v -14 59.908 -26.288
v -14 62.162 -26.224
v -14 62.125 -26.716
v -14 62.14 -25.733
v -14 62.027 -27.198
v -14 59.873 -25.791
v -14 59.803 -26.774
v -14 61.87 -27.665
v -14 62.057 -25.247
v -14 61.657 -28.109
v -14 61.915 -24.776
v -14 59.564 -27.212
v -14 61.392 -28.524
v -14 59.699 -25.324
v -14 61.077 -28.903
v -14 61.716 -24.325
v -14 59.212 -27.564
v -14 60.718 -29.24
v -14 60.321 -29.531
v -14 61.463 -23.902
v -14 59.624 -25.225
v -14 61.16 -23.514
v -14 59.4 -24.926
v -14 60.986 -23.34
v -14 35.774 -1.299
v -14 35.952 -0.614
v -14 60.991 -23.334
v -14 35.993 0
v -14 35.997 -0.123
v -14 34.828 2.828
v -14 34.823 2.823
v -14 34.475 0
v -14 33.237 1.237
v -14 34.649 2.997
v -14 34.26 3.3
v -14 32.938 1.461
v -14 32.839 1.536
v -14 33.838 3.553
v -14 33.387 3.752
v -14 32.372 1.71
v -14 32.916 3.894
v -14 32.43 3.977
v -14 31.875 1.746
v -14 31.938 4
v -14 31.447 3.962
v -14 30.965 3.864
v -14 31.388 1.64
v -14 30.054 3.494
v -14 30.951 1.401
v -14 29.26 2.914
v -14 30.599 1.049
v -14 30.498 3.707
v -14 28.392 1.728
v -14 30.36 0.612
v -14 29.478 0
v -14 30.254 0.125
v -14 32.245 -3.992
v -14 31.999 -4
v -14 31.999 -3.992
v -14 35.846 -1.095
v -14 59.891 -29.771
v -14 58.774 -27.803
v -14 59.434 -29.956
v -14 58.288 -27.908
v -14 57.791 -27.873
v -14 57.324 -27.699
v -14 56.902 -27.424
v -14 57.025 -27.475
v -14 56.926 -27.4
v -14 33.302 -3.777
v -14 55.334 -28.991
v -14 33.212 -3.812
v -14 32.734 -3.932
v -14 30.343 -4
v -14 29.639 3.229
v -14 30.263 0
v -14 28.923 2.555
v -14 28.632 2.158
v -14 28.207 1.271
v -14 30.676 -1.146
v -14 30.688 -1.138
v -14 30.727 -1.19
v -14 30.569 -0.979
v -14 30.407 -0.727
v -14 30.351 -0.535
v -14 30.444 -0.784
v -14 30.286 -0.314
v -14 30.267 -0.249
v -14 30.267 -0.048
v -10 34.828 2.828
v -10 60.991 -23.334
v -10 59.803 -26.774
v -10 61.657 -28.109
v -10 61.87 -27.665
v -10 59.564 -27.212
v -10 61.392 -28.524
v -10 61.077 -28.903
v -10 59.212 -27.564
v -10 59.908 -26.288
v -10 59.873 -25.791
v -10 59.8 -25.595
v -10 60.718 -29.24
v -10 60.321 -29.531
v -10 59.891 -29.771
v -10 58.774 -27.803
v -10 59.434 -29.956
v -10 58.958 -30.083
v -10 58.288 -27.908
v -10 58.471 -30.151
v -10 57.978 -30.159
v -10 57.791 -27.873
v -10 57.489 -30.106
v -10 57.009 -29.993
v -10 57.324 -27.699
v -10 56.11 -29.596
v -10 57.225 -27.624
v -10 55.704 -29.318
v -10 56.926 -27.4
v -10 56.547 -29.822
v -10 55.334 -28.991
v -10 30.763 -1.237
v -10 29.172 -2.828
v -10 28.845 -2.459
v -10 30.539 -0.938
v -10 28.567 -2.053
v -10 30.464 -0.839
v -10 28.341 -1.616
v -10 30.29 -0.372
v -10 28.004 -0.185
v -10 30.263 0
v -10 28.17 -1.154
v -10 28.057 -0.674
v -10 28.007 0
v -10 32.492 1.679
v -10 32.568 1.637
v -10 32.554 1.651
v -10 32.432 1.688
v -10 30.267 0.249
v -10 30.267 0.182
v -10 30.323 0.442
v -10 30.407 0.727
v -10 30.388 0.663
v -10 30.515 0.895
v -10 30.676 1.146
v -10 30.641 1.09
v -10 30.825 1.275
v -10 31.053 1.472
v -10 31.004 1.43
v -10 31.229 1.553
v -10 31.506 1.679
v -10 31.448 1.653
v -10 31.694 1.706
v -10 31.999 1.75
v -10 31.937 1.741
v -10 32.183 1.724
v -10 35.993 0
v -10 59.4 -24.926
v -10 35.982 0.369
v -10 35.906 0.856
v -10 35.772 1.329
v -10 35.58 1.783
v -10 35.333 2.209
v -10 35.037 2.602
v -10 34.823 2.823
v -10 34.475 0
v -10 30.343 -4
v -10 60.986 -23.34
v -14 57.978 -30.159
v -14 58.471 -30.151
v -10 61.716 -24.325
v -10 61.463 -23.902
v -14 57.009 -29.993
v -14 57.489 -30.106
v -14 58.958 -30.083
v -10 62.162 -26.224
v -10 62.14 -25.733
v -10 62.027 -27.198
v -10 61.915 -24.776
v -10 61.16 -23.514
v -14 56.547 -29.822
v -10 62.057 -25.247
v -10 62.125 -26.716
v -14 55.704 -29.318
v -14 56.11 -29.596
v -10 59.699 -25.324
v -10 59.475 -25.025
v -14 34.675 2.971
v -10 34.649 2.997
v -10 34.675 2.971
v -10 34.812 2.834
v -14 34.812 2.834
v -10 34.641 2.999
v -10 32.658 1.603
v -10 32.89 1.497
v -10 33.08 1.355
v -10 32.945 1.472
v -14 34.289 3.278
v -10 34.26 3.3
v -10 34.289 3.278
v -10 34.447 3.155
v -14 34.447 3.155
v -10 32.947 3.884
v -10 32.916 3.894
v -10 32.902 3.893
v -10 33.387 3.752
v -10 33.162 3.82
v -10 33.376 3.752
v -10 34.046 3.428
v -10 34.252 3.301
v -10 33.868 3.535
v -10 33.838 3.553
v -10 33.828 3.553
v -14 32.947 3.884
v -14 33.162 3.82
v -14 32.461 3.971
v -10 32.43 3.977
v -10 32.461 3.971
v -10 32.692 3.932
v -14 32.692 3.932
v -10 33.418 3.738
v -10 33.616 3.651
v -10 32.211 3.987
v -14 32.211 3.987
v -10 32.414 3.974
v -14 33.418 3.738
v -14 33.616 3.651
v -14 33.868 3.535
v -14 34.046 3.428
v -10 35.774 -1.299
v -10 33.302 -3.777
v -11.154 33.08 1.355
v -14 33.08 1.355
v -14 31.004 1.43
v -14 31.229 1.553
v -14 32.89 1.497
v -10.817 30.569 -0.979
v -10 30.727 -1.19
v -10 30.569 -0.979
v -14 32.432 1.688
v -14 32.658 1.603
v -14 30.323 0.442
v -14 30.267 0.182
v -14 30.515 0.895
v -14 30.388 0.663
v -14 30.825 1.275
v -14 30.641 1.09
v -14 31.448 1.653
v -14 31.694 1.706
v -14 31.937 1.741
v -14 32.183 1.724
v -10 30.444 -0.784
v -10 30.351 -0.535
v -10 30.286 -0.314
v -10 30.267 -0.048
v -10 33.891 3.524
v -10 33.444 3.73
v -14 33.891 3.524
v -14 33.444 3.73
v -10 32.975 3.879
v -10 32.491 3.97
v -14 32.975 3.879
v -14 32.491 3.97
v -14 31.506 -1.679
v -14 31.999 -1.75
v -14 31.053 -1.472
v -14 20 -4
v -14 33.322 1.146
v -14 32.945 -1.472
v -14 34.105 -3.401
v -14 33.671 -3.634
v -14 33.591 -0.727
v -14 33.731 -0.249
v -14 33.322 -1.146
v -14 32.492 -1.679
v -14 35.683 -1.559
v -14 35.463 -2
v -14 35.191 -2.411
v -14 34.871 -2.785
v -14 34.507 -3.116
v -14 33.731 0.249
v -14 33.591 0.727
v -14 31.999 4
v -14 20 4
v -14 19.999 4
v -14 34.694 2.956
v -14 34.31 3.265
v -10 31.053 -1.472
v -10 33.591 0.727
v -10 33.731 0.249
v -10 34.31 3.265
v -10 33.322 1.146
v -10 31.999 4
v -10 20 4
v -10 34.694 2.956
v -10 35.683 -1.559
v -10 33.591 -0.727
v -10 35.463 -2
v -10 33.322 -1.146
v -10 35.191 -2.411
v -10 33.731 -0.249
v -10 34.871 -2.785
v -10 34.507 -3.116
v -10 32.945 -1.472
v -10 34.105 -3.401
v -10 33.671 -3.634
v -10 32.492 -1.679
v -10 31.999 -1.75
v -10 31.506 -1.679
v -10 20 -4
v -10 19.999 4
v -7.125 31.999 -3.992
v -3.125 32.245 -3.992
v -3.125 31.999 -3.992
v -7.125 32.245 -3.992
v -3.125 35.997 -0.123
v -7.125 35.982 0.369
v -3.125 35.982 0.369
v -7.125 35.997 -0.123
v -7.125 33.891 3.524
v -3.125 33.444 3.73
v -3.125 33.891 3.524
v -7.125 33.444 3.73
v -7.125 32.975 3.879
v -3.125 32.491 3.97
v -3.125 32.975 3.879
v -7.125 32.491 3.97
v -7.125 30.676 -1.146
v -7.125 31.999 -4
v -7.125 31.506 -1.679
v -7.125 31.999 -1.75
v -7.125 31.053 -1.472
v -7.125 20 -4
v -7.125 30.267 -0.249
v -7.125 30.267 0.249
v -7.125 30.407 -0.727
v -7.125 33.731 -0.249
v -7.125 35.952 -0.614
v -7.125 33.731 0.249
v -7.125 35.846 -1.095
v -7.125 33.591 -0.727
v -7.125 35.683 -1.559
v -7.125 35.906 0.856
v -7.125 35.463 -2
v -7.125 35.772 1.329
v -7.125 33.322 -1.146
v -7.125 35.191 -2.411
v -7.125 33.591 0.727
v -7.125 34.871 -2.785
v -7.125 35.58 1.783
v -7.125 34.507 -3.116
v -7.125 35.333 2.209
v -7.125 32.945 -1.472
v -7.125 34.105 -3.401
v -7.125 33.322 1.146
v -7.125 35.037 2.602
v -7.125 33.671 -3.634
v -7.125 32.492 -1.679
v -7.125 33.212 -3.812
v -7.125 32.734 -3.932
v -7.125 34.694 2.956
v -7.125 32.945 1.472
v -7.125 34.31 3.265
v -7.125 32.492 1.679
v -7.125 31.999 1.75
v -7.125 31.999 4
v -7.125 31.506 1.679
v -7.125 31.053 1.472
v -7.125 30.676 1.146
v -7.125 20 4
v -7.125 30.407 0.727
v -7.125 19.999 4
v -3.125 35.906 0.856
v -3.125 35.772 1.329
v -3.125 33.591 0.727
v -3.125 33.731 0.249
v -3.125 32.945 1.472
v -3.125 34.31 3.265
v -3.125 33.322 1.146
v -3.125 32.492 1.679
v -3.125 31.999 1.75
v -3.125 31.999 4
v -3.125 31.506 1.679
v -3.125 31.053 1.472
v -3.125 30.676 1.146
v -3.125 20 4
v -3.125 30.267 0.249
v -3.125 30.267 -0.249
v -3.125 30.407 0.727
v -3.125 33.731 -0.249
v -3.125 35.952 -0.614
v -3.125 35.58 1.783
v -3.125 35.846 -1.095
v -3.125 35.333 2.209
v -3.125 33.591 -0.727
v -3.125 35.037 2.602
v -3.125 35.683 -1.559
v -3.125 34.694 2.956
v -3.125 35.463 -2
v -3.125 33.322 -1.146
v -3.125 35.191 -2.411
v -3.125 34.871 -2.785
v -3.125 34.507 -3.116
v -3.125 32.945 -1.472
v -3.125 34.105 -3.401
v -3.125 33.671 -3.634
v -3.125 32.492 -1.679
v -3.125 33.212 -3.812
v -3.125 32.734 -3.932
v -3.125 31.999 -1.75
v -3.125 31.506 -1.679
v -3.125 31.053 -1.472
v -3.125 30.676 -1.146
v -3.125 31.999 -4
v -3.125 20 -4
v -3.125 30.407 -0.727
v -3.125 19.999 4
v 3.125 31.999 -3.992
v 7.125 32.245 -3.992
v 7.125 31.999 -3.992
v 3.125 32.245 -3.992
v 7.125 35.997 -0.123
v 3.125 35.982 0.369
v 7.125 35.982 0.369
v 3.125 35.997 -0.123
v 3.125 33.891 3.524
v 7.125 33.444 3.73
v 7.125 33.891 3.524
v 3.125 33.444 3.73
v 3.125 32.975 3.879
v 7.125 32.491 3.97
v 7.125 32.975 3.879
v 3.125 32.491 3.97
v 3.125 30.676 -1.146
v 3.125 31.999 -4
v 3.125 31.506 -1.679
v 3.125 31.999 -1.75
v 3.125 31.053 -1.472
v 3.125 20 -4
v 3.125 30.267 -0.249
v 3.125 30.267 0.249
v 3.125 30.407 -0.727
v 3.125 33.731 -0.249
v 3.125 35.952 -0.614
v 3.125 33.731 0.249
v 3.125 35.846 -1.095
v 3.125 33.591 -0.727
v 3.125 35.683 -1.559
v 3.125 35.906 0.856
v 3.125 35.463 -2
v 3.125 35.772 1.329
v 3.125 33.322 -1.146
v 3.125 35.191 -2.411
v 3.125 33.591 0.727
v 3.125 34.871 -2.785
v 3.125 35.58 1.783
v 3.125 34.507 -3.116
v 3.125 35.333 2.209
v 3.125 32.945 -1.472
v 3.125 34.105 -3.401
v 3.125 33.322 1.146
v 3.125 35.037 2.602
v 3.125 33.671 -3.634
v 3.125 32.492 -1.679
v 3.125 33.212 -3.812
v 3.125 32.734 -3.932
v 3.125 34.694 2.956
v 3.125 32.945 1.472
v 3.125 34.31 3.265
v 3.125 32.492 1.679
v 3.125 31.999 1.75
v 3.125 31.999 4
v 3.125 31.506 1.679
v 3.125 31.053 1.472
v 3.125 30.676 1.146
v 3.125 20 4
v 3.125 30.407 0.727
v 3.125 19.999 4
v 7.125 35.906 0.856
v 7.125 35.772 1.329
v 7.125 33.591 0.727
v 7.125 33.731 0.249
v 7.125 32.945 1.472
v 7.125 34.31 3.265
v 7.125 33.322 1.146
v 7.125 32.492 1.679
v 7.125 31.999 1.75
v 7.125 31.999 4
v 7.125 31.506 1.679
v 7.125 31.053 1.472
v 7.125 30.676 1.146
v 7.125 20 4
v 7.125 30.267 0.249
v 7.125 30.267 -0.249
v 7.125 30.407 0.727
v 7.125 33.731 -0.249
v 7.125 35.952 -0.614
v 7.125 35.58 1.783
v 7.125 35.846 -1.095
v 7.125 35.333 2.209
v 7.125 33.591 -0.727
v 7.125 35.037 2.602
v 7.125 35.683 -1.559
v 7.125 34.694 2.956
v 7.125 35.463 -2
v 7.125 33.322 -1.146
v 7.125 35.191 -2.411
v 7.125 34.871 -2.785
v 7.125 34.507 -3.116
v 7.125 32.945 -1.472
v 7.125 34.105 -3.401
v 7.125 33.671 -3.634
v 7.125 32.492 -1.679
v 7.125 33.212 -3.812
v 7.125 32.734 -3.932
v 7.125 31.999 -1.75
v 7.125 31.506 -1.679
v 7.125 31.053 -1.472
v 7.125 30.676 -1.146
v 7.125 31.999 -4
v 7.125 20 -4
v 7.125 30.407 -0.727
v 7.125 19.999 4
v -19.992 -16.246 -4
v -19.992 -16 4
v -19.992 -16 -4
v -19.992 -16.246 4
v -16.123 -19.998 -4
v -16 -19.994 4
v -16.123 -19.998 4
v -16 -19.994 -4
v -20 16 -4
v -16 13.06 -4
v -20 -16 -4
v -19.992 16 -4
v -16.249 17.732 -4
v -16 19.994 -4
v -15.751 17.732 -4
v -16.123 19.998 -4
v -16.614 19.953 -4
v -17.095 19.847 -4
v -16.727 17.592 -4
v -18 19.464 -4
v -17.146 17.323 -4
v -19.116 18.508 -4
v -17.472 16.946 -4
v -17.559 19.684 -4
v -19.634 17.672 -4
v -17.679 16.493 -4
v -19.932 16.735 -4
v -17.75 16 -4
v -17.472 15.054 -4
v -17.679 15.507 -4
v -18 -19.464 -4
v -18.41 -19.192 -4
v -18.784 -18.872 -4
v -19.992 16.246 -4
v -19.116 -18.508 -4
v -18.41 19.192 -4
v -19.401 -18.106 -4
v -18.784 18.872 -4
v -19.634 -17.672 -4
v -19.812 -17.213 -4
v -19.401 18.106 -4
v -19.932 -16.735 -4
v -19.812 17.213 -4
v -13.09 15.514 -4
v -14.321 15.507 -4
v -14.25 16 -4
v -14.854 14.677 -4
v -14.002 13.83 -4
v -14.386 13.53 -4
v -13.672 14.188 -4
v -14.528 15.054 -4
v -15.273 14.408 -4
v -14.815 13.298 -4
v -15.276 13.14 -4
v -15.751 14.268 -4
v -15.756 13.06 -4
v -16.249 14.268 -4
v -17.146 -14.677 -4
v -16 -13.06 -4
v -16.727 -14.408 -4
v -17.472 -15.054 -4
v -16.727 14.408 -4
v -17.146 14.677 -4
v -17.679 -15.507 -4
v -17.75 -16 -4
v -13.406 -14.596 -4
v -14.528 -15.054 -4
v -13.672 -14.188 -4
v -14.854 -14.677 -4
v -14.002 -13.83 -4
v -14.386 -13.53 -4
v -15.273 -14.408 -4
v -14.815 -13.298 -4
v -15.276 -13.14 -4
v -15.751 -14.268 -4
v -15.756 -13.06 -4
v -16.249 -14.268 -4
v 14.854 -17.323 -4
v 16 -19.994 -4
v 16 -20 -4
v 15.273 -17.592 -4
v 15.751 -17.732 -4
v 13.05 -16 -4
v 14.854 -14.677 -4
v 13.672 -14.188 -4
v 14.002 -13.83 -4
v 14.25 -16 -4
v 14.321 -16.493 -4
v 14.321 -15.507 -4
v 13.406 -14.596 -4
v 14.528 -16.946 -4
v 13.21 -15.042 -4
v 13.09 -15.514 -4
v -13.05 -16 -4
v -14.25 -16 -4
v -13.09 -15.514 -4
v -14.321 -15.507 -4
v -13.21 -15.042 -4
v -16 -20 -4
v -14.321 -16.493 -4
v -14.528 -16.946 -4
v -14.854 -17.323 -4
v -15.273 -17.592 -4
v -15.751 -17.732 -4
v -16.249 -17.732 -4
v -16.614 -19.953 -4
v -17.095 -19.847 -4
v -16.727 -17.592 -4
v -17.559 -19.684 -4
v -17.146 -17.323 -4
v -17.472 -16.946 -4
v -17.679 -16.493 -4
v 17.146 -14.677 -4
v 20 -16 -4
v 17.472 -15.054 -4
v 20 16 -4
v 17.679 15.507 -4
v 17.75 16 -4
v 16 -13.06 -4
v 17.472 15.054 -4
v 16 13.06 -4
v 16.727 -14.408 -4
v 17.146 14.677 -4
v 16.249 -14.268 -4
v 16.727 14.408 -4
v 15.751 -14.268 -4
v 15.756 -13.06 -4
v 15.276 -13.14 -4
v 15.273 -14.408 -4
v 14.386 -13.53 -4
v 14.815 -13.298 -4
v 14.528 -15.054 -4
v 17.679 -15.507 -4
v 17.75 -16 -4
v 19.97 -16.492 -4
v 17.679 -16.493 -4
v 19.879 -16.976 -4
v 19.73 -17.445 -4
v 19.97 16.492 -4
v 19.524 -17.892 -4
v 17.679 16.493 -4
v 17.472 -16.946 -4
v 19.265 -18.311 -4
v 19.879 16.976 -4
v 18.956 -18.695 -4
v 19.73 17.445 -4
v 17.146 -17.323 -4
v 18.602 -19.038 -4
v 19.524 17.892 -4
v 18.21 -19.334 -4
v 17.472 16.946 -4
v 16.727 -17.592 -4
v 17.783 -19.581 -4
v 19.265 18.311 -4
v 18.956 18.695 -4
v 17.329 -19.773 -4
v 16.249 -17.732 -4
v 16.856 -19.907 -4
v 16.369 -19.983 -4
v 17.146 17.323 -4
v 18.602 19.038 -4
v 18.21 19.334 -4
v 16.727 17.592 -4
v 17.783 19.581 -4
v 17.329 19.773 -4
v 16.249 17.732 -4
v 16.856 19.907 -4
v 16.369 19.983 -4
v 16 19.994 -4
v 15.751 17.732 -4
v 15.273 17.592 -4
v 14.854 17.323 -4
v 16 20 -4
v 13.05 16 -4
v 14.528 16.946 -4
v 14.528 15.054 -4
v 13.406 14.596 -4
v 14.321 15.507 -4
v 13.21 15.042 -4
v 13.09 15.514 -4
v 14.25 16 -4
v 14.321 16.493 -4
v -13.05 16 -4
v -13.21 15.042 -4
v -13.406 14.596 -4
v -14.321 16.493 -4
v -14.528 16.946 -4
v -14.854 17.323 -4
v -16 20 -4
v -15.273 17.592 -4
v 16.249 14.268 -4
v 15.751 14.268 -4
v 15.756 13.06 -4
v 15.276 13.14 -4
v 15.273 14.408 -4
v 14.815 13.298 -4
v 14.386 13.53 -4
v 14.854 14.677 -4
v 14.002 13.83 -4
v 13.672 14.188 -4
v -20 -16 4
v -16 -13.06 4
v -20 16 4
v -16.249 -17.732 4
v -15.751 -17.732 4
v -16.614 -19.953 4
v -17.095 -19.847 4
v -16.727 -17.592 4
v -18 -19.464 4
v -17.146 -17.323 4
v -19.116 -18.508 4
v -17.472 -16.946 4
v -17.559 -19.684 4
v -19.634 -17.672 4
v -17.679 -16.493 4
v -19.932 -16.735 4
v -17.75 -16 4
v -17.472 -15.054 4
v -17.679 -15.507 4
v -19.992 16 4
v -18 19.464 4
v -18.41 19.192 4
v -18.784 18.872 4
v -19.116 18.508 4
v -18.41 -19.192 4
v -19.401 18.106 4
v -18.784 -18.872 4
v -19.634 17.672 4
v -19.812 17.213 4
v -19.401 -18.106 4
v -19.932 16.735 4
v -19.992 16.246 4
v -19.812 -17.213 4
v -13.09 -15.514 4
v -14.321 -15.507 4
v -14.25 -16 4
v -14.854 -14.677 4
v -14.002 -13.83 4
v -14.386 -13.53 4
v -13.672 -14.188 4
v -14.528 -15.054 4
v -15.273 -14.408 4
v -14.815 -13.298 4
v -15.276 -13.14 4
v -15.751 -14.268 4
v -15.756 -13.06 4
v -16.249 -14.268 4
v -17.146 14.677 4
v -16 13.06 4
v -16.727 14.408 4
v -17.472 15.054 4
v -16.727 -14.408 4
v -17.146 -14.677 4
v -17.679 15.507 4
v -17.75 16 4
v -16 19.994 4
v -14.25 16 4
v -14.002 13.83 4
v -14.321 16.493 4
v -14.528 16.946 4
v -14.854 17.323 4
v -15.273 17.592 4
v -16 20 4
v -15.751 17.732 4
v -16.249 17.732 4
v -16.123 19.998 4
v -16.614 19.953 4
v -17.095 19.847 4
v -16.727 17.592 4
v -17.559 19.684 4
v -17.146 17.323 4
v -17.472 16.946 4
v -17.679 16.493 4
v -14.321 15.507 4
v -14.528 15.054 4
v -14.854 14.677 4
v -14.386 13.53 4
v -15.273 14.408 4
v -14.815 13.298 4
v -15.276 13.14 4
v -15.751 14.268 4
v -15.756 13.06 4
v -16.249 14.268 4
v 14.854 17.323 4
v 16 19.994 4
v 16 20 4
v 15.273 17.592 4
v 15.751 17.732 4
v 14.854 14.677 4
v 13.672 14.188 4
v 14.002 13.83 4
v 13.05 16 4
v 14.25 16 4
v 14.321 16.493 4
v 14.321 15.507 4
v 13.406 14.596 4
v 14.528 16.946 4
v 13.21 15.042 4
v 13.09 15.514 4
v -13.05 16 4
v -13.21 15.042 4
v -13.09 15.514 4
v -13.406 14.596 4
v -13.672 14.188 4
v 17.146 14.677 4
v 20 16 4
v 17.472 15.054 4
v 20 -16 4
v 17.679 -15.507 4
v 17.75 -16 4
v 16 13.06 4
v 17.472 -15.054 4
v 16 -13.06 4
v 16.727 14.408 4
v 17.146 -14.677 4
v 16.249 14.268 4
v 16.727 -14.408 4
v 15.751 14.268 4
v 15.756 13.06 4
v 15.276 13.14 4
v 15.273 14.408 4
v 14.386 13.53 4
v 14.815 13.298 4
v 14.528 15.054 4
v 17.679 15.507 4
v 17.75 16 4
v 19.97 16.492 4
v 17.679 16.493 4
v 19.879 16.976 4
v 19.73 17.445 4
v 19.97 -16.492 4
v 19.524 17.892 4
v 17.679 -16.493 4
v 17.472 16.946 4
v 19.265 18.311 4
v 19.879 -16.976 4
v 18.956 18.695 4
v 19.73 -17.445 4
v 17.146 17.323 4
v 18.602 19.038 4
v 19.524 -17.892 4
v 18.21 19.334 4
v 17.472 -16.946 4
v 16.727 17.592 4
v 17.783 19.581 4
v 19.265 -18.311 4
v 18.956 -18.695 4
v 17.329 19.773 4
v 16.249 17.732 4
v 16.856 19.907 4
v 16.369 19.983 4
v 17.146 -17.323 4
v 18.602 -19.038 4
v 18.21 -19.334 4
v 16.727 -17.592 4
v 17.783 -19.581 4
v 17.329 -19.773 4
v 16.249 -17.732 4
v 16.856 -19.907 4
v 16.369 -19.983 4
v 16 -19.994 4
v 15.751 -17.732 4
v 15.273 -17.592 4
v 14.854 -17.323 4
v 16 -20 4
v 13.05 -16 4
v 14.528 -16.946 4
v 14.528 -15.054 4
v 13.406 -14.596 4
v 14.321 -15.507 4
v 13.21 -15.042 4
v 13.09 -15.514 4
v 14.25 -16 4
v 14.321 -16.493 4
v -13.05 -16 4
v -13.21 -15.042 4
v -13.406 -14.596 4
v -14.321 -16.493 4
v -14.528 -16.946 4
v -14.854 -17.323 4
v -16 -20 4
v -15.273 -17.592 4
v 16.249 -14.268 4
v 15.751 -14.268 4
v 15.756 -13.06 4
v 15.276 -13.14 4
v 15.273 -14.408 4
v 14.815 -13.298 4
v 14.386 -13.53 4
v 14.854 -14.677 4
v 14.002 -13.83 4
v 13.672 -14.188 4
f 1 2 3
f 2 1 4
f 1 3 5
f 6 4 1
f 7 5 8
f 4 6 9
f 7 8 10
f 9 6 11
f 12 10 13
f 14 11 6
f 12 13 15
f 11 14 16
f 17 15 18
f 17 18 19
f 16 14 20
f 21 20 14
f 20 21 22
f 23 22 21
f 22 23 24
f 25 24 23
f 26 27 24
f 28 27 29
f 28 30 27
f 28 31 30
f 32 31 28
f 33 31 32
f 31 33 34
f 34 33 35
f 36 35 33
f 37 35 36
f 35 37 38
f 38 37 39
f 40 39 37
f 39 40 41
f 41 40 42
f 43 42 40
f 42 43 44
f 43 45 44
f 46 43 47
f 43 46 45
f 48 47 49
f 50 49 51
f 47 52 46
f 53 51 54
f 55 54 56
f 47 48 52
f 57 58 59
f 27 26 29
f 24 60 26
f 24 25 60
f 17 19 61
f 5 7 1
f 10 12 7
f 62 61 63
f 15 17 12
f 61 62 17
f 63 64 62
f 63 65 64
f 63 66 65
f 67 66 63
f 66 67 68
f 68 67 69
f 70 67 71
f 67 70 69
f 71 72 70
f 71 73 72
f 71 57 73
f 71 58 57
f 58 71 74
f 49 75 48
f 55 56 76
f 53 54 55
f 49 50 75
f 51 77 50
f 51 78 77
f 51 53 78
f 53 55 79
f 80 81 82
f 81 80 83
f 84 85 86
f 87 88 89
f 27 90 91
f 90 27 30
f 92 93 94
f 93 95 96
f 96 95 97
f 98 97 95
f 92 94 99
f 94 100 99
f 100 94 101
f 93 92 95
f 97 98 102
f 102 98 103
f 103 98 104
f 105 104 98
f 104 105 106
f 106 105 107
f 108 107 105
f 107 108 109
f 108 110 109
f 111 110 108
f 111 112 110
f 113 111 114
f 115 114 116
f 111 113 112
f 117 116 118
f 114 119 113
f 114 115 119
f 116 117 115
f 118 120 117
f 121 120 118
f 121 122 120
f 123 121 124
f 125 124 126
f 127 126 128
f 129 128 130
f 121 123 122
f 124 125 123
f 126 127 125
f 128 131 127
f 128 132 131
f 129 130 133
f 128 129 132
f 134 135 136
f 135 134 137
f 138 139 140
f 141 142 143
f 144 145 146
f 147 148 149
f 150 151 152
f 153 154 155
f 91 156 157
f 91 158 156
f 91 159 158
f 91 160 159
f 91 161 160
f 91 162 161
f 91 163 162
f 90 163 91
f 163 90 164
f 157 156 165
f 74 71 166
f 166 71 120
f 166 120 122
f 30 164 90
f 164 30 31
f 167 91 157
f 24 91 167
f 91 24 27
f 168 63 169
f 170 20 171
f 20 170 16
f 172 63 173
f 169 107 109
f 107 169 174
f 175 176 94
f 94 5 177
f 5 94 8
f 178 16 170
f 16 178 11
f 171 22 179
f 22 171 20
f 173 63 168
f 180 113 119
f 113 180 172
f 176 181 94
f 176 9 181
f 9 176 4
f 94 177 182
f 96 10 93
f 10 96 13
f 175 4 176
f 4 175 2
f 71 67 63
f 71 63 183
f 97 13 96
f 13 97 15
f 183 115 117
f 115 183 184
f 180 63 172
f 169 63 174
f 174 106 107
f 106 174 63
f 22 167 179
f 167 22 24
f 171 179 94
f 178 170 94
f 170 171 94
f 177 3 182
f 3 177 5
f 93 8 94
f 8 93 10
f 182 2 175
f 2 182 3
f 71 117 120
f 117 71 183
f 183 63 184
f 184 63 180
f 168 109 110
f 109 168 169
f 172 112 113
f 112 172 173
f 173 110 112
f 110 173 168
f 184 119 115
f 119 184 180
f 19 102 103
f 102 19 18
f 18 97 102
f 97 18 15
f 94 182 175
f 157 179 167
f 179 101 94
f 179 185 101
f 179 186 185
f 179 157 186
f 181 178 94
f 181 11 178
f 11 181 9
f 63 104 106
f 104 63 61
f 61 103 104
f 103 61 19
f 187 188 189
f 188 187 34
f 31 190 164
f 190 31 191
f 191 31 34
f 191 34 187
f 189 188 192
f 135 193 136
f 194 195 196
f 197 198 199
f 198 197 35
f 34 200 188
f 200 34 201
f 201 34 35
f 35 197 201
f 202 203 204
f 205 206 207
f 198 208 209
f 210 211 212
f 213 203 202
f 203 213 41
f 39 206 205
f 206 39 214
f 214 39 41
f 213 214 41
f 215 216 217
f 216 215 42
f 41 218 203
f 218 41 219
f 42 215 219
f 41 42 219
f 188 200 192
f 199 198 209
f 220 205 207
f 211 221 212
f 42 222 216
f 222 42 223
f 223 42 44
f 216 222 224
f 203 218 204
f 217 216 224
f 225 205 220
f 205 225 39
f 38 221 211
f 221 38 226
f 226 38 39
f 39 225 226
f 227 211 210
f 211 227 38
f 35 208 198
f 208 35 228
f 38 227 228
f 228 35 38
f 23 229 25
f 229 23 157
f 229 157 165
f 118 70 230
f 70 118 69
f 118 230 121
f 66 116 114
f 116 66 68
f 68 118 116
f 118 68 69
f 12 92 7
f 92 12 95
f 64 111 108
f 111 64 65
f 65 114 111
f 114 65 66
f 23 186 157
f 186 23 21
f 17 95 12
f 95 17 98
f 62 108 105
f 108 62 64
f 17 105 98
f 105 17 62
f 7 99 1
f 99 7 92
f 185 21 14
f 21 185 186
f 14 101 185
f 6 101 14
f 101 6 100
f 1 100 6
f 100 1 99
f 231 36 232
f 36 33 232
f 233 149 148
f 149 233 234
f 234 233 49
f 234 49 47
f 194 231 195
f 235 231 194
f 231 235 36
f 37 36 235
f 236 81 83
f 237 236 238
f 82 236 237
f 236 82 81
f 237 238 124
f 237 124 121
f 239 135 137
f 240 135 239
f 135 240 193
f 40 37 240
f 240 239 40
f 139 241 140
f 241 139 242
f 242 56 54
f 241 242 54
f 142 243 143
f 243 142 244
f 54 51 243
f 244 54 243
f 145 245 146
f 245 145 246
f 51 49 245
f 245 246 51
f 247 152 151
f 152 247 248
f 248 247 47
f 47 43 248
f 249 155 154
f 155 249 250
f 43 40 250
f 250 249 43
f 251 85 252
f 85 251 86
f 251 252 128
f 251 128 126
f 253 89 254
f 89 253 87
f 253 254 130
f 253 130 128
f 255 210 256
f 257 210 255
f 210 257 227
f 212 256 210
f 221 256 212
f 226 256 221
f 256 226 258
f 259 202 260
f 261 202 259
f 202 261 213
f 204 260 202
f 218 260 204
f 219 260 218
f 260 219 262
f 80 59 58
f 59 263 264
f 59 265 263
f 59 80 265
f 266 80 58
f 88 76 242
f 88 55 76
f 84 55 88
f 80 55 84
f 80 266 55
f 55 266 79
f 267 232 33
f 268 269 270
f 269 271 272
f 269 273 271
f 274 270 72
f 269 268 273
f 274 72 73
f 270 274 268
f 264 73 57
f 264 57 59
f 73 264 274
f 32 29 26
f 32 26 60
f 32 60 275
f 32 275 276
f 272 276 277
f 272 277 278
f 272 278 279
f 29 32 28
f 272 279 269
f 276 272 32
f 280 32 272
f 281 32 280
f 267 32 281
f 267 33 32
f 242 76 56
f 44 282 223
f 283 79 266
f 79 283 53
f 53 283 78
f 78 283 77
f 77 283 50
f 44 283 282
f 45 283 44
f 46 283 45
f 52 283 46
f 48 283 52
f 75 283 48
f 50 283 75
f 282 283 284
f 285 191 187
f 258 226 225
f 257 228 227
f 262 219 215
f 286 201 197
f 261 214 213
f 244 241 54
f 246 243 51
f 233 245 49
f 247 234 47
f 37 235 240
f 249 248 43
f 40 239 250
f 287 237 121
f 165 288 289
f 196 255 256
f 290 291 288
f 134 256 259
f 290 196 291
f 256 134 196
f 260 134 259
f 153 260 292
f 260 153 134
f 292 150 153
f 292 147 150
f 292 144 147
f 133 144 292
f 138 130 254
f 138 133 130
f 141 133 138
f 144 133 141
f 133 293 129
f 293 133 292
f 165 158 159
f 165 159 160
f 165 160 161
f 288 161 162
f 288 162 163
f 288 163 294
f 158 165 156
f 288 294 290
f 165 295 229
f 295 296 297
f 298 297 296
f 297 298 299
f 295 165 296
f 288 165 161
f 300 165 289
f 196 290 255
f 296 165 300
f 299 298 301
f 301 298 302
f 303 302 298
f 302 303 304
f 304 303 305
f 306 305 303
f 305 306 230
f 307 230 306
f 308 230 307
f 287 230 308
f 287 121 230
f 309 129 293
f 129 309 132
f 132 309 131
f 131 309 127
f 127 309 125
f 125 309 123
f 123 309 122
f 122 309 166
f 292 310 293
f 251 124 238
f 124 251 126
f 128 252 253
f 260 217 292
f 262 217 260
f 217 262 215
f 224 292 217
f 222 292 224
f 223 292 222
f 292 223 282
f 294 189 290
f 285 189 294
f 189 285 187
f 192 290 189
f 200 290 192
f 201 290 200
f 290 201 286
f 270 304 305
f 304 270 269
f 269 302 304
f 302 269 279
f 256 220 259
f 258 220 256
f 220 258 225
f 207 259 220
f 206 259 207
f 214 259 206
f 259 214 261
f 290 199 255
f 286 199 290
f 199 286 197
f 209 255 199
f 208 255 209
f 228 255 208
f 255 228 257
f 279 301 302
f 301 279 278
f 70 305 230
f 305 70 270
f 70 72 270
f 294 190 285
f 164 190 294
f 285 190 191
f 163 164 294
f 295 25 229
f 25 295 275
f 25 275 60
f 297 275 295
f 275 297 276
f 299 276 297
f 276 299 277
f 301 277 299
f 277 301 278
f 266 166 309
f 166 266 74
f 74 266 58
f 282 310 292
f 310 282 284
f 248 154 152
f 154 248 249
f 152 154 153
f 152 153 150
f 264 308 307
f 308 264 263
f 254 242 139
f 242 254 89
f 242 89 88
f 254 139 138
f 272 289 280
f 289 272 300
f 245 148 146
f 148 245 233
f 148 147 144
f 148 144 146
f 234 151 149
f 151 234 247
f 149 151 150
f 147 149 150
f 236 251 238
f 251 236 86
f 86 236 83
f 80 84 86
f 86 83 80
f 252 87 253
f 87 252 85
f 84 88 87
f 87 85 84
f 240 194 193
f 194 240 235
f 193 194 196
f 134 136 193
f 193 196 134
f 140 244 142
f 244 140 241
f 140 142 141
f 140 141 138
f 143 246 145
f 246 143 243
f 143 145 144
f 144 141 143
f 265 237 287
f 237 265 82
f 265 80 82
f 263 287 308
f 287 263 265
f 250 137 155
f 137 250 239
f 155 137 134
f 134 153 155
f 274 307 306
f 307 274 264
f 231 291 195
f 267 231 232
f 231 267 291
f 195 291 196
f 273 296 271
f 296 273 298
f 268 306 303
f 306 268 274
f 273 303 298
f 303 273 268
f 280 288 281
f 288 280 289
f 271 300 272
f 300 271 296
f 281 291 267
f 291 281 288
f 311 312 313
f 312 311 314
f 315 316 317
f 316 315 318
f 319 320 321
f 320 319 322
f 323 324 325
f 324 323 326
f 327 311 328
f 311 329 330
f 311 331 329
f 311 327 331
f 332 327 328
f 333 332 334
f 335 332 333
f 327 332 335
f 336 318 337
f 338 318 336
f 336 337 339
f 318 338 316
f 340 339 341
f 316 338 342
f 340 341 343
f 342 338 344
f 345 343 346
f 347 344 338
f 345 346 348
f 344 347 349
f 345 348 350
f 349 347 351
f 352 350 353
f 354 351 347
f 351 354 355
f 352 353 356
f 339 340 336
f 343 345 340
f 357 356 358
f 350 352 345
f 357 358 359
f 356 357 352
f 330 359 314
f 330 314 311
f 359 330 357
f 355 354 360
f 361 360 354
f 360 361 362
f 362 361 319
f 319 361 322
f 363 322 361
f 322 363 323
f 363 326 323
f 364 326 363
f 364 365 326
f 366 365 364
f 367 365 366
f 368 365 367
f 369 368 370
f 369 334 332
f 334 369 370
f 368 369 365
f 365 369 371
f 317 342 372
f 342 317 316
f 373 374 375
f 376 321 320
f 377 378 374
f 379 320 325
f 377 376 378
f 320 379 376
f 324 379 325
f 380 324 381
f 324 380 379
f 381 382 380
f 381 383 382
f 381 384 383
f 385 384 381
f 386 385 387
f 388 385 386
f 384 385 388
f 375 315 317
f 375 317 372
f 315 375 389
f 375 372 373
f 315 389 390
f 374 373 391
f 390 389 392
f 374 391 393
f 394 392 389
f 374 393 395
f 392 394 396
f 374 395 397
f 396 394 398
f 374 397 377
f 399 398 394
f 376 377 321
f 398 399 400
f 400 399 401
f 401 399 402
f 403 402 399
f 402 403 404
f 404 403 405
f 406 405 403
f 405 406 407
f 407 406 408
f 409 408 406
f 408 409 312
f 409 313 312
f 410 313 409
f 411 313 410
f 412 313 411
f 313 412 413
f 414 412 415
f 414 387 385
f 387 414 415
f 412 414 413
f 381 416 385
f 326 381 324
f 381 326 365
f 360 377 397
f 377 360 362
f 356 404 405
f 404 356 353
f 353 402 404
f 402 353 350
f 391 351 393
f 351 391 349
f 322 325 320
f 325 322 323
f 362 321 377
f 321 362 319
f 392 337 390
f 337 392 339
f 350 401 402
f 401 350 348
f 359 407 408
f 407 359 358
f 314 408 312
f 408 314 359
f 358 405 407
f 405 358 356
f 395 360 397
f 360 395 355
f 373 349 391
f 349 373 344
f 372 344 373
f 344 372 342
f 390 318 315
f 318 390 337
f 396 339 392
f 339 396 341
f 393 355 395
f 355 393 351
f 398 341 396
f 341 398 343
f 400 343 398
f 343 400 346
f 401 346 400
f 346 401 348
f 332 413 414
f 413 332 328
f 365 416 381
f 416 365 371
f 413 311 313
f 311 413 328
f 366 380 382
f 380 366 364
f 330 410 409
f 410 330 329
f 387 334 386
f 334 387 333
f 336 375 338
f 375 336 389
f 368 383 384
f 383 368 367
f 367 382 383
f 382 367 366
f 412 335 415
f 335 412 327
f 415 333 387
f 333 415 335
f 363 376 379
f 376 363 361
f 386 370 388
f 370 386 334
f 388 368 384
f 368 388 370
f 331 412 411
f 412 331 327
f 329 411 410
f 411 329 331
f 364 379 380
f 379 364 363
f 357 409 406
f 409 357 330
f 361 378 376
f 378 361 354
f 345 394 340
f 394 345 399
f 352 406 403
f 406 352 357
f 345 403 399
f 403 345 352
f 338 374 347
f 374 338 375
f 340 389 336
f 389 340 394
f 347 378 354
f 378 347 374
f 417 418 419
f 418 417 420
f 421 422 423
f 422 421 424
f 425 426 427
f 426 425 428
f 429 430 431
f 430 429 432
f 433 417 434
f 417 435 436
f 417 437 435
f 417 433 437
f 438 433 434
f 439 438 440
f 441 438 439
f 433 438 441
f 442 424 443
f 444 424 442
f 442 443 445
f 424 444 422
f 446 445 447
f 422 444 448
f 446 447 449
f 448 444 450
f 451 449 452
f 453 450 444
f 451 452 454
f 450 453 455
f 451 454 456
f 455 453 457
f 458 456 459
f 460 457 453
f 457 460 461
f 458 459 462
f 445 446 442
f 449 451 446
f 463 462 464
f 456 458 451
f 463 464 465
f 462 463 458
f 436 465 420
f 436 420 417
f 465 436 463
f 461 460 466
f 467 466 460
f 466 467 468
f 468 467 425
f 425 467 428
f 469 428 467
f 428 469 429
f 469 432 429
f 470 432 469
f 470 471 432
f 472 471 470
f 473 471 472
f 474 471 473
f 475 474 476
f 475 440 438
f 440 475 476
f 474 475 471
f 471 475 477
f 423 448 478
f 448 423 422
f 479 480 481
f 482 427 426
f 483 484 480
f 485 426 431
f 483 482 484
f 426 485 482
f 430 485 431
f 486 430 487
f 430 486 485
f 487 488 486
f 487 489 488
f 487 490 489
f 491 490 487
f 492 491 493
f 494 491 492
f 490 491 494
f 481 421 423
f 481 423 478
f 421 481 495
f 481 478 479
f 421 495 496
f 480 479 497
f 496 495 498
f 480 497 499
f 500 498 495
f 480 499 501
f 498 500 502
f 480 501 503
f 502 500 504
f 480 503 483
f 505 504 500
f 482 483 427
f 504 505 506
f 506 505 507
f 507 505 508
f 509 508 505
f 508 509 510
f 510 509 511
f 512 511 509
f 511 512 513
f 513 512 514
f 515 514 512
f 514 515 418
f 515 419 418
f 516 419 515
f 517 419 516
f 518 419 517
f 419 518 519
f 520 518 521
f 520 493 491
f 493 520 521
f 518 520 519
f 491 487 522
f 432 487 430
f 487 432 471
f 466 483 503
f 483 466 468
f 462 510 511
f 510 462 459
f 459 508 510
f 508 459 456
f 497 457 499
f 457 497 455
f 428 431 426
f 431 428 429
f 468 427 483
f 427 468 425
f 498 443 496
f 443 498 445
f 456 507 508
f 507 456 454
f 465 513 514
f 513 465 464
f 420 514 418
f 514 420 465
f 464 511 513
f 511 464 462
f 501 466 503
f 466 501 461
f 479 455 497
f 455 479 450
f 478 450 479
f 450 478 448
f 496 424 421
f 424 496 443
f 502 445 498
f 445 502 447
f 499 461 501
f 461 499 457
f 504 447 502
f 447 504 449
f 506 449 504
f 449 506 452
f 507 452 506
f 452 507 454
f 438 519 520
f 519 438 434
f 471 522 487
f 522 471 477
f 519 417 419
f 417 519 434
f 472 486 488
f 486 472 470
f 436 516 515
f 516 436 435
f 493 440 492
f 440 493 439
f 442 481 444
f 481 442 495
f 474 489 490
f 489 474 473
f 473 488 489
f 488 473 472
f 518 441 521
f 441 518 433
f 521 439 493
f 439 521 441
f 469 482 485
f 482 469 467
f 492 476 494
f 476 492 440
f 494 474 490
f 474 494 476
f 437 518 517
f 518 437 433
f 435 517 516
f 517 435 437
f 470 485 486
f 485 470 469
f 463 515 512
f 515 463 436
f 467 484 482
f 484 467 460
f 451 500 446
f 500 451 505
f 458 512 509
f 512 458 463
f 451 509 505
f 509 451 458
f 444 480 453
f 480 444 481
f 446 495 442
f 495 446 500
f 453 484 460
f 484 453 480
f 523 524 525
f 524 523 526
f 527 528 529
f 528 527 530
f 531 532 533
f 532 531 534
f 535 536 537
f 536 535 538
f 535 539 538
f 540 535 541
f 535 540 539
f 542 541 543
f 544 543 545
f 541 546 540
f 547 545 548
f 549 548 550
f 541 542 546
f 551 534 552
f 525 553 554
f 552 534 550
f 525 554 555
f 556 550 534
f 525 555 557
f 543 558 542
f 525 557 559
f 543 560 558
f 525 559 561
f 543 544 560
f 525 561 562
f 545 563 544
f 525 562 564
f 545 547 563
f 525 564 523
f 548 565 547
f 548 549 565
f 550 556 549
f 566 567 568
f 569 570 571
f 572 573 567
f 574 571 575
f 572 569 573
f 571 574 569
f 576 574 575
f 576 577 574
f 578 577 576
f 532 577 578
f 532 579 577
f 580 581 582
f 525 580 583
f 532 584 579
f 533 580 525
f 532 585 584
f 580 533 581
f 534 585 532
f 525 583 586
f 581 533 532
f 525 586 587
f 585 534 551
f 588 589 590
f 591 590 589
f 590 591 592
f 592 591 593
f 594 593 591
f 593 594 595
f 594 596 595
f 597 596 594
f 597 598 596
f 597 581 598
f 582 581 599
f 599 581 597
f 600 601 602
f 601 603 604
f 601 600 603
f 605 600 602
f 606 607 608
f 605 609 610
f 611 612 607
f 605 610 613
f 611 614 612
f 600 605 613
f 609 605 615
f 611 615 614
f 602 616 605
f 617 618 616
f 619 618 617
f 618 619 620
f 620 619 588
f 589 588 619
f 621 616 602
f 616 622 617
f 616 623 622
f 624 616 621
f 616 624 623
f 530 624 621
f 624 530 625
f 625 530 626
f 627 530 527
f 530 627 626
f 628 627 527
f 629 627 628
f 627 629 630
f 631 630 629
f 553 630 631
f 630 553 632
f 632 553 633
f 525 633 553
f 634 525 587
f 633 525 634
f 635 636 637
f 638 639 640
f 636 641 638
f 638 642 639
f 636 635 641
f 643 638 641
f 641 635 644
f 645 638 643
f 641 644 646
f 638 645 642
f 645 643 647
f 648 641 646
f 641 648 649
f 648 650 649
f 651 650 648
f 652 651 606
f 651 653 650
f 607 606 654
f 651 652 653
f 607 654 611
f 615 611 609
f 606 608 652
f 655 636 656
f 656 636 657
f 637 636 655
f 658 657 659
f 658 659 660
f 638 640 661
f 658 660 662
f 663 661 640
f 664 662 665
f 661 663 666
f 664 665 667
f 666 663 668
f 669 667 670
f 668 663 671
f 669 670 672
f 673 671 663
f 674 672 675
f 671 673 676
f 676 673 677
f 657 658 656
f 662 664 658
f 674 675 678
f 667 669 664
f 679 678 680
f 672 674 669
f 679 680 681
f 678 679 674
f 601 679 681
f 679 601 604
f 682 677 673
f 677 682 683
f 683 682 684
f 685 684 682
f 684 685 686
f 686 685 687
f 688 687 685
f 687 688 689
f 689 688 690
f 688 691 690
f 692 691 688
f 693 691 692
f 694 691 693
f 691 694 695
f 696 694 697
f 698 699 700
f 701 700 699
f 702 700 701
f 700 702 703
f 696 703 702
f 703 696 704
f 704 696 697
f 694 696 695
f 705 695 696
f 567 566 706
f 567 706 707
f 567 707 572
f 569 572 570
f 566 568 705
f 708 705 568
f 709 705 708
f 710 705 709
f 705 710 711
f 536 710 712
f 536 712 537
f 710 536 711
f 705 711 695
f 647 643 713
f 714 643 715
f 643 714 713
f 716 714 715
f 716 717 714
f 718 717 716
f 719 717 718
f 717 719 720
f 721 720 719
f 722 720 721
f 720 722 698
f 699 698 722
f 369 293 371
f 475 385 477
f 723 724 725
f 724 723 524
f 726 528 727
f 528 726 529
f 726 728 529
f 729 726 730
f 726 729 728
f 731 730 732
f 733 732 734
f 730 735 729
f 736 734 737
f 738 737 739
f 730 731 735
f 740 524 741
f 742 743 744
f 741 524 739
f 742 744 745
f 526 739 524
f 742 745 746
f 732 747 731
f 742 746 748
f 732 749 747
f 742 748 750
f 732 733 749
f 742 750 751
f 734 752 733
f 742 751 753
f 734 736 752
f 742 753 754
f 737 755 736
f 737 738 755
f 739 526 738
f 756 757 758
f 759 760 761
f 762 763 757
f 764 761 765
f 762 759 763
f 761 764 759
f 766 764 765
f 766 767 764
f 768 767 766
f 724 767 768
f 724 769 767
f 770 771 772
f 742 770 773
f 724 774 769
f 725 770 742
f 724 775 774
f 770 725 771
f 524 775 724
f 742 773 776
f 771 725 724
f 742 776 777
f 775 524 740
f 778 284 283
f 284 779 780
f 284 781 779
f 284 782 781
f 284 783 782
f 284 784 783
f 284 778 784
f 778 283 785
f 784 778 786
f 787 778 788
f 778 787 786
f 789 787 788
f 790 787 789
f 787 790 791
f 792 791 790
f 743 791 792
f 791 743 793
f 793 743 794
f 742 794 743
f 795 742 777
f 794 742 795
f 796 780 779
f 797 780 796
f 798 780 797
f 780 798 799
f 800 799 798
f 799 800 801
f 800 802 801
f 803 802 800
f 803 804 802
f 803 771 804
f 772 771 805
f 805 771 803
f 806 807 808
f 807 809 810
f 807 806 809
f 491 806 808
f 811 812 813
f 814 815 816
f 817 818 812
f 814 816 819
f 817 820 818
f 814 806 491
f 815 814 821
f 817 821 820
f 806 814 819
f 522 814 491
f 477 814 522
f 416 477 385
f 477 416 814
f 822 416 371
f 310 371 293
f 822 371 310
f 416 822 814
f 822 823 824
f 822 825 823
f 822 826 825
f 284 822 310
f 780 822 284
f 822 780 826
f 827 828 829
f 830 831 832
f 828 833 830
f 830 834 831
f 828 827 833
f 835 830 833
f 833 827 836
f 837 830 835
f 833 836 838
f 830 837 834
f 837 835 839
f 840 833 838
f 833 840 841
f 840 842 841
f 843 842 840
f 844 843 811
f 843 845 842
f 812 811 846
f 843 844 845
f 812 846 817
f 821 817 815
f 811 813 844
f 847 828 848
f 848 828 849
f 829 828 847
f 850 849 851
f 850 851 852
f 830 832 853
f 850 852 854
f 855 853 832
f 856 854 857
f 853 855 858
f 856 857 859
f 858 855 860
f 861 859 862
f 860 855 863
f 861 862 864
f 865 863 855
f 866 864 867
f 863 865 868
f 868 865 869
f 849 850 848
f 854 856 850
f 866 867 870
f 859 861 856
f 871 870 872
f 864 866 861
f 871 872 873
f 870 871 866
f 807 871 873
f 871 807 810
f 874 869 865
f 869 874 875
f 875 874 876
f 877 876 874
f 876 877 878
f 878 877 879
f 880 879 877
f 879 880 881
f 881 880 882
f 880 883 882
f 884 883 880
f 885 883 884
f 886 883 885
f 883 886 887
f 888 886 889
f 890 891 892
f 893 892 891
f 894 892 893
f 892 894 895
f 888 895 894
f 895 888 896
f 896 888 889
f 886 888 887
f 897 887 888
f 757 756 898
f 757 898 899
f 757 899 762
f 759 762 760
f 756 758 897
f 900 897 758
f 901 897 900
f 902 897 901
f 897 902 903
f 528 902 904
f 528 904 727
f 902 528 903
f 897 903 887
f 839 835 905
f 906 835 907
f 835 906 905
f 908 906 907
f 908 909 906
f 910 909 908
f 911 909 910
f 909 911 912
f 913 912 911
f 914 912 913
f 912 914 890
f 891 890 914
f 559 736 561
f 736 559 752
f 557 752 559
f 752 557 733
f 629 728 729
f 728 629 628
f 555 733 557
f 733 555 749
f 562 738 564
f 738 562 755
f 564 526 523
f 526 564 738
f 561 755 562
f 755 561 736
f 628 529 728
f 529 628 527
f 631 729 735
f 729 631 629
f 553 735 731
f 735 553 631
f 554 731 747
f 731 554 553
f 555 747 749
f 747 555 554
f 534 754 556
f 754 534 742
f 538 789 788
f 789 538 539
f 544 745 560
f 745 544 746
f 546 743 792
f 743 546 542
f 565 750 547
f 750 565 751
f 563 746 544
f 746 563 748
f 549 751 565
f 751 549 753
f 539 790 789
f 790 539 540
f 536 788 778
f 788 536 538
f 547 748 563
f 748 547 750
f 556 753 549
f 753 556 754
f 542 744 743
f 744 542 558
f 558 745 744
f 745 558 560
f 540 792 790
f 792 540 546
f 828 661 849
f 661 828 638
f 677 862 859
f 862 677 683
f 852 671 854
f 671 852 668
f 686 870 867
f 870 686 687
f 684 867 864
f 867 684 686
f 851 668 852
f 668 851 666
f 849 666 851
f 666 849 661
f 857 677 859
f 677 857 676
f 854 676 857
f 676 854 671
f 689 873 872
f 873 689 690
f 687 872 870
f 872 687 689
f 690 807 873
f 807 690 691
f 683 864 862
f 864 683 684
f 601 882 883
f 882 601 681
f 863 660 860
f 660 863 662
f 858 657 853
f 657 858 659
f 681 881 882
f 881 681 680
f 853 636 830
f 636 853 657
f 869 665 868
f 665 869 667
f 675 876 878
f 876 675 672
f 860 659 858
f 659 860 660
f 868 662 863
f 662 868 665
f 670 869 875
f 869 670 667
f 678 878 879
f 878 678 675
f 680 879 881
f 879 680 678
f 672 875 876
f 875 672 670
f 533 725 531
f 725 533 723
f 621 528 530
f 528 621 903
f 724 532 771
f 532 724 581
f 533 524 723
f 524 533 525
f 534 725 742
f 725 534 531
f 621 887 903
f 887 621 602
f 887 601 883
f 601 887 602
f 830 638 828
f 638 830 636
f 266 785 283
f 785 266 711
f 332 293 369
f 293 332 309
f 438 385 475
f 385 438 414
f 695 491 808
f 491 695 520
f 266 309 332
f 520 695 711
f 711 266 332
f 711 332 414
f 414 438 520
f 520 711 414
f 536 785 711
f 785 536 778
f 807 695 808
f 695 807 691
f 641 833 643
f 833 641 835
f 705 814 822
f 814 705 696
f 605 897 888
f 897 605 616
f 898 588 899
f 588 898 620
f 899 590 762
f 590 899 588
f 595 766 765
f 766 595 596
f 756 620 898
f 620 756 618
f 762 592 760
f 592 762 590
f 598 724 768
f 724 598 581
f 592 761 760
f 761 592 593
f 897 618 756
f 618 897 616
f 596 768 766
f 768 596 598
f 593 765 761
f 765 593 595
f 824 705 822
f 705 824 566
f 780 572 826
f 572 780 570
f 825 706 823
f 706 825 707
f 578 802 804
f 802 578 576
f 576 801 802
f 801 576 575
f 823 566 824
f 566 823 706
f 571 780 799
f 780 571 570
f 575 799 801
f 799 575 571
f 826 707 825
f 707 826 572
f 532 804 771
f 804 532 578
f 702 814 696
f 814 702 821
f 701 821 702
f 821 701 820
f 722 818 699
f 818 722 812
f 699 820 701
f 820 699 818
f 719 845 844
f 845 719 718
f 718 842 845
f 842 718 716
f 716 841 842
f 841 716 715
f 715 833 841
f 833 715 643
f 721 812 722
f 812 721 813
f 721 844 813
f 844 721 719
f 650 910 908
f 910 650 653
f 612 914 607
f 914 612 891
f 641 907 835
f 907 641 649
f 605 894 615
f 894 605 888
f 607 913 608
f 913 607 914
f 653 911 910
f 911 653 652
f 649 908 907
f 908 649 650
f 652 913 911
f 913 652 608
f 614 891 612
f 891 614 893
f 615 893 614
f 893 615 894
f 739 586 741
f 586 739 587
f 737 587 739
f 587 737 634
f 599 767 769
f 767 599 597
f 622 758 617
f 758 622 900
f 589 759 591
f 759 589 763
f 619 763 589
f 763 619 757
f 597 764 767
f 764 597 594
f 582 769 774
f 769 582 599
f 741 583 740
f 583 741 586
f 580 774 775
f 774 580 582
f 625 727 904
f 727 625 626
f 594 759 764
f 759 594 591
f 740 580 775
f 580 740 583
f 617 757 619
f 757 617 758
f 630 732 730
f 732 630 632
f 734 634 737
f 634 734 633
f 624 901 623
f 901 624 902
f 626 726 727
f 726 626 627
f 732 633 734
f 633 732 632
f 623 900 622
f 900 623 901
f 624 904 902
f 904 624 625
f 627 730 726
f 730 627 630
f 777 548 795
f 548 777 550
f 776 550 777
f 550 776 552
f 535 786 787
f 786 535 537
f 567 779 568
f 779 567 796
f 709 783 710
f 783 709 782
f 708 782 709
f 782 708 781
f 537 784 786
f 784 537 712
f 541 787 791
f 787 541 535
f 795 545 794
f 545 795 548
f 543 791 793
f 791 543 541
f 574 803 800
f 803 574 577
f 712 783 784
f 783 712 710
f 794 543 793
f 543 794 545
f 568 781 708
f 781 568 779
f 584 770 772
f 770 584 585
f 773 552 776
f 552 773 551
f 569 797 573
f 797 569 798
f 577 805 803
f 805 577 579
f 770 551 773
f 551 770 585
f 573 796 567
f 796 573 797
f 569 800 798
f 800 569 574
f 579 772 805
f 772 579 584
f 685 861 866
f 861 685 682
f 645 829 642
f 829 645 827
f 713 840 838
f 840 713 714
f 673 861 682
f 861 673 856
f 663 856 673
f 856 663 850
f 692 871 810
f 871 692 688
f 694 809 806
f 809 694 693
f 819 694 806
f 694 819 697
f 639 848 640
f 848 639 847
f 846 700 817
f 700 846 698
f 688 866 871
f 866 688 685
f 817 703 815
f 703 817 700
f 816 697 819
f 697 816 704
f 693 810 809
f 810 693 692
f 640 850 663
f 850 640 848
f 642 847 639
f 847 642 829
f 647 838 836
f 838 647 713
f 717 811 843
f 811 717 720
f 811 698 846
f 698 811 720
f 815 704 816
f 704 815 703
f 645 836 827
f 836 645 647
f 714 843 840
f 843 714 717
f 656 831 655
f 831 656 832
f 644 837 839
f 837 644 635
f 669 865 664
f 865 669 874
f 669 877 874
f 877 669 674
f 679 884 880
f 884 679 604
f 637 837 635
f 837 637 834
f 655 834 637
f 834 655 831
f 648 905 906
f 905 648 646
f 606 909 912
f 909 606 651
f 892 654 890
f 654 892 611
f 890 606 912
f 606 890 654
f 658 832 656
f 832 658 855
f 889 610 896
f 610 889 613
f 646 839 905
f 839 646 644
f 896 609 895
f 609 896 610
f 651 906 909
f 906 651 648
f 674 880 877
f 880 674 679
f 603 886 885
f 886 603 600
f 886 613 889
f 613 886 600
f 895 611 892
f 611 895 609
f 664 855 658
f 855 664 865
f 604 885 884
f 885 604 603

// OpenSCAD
fansize=40;
holespace=32;
round_r=4;
bracket_h=8;
wall_thick=4;
m3_tap=3;
m3_slot=3.5;
$fa=.5;
$fs=.5;
print_buff=1.2;
hingeknee=12; //distance from edge of fanholder to pivor point
kneeangle=45; //angle of fan mount, from straight out
hingegap=6.25; //space between hinge brackets
slotlength=37; //angle-holding arm slot length
arm_gap=10; //center of hinge to arm side
arm_h=8;//how tall arm should be
ep=0.001; //small value, used to nudge and eliminate abiguity on faces touching
module fansquare()
{
    difference()
    {
        union()
        {
        //circles on four corners
        offsets=(fansize/2)-round_r;
        translate([-offsets,-offsets,0])cylinder(h=bracket_h,r=round_r,center=true);
        translate([-offsets,offsets,0])cylinder(h=bracket_h,r=round_r,center=true);
        translate([offsets,offsets,0])cylinder(h=bracket_h,r=round_r,center=true);
        translate([offsets,-offsets,0])cylinder(h=bracket_h,r=round_r,center=true);
        rotate(0,[0,0,1])translate([-(offsets-wall_thick/2+round_r),0,0])cube([wall_thick,offsets*2,bracket_h],center=true);
        rotate(90,[0,0,1])translate([-(offsets-wall_thick/2+round_r),0,0])cube([wall_thick,offsets*2,bracket_h],center=true);
        rotate(180,[0,0,1])translate([-(offsets-wall_thick/2+round_r),0,0])cube([wall_thick,offsets*2,bracket_h],center=true);
        rotate(270,[0,0,1])translate([-(offsets-wall_thick/2+round_r),0,0])cube([wall_thick,offsets*2,bracket_h],center=true);   
        }
        //clean up inside
        cube([(fansize-wall_thick*2),(fansize-wall_thick*2),bracket_h*2],center=true);
    }
}
module fanholder()
{
    difference()
    {
        union()
        {
        fansquare();
        //mounting holes buffer
                translate([-holespace/2,-holespace/2,0])cylinder(h=bracket_h,r=(m3_slot/2)+print_buff,center=true);
                translate([-holespace/2,holespace/2,0])cylinder(h=bracket_h,r=(m3_slot/2)+print_buff,center=true);
                translate([holespace/2,holespace/2,0])cylinder(h=bracket_h,r=(m3_slot/2)+print_buff,center=true);
                translate([holespace/2,-holespace/2,0])cylinder(h=bracket_h,r=(m3_slot/2)+print_buff,center=true);
        }
        translate([-holespace/2,-holespace/2,0])cylinder(h=bracket_h*2,r=(m3_slot/2),center=true);
        translate([-holespace/2,holespace/2,0])cylinder(h=bracket_h*2,r=(m3_slot/2),center=true);
        translate([holespace/2,holespace/2,0])cylinder(h=bracket_h*2,r=(m3_slot/2),center=true);
        translate([holespace/2,-holespace/2,0])cylinder(h=bracket_h*2,r=(m3_slot/2),center=true);
    }
}
module hinge()
{
    rotate(180,[1,0,0])rotate(90,[0,1,0])difference()
    {
        union()
        {
            cylinder(r=bracket_h/2,h=wall_thick,center=true);
            translate([0,hingeknee/2,0])cube([bracket_h,hingeknee,wall_thick],center=true);
        }
        cylinder(r=m3_slot/2,h=wall_thick*2,center=true);
    }
}
module arm()
{
    difference()
    {
        union()
        {
            cube([wall_thick,slotlength,arm_h],center=true);
            translate([0,slotlength/2,0])rotate(90,[0,1,0])cylinder(r=arm_h/2,h=wall_thick,center=true);
            translate([0,-slotlength/2,0])rotate(90,[0,1,0])cylinder(r=arm_h/2,h=wall_thick,center=true);
        }
        cube([wall_thick*2,slotlength,m3_slot],center=true);
        translate([0,slotlength/2,0])rotate(90,[0,1,0])cylinder(r=m3_slot/2,h=wall_thick*2,center=true);
        translate([0,-slotlength/2,0])rotate(90,[0,1,0])cylinder(r=m3_slot/2,h=wall_thick*2,center=true);
    }
}
translate([0,(fansize/2+hingeknee),0])
rotate(-kneeangle,[1,0,0])translate([-(arm_gap+wall_thick/2),(slotlength/2),0])arm();
translate([-(arm_gap+wall_thick/2),fansize/2+hingeknee-ep,0])hinge();
translate([-(wall_thick/2+hingegap/2),fansize/2+hingeknee-ep,0])hinge();
translate([(wall_thick/2+hingegap/2),fansize/2+hingeknee-ep,0])hinge();
fanholder();
